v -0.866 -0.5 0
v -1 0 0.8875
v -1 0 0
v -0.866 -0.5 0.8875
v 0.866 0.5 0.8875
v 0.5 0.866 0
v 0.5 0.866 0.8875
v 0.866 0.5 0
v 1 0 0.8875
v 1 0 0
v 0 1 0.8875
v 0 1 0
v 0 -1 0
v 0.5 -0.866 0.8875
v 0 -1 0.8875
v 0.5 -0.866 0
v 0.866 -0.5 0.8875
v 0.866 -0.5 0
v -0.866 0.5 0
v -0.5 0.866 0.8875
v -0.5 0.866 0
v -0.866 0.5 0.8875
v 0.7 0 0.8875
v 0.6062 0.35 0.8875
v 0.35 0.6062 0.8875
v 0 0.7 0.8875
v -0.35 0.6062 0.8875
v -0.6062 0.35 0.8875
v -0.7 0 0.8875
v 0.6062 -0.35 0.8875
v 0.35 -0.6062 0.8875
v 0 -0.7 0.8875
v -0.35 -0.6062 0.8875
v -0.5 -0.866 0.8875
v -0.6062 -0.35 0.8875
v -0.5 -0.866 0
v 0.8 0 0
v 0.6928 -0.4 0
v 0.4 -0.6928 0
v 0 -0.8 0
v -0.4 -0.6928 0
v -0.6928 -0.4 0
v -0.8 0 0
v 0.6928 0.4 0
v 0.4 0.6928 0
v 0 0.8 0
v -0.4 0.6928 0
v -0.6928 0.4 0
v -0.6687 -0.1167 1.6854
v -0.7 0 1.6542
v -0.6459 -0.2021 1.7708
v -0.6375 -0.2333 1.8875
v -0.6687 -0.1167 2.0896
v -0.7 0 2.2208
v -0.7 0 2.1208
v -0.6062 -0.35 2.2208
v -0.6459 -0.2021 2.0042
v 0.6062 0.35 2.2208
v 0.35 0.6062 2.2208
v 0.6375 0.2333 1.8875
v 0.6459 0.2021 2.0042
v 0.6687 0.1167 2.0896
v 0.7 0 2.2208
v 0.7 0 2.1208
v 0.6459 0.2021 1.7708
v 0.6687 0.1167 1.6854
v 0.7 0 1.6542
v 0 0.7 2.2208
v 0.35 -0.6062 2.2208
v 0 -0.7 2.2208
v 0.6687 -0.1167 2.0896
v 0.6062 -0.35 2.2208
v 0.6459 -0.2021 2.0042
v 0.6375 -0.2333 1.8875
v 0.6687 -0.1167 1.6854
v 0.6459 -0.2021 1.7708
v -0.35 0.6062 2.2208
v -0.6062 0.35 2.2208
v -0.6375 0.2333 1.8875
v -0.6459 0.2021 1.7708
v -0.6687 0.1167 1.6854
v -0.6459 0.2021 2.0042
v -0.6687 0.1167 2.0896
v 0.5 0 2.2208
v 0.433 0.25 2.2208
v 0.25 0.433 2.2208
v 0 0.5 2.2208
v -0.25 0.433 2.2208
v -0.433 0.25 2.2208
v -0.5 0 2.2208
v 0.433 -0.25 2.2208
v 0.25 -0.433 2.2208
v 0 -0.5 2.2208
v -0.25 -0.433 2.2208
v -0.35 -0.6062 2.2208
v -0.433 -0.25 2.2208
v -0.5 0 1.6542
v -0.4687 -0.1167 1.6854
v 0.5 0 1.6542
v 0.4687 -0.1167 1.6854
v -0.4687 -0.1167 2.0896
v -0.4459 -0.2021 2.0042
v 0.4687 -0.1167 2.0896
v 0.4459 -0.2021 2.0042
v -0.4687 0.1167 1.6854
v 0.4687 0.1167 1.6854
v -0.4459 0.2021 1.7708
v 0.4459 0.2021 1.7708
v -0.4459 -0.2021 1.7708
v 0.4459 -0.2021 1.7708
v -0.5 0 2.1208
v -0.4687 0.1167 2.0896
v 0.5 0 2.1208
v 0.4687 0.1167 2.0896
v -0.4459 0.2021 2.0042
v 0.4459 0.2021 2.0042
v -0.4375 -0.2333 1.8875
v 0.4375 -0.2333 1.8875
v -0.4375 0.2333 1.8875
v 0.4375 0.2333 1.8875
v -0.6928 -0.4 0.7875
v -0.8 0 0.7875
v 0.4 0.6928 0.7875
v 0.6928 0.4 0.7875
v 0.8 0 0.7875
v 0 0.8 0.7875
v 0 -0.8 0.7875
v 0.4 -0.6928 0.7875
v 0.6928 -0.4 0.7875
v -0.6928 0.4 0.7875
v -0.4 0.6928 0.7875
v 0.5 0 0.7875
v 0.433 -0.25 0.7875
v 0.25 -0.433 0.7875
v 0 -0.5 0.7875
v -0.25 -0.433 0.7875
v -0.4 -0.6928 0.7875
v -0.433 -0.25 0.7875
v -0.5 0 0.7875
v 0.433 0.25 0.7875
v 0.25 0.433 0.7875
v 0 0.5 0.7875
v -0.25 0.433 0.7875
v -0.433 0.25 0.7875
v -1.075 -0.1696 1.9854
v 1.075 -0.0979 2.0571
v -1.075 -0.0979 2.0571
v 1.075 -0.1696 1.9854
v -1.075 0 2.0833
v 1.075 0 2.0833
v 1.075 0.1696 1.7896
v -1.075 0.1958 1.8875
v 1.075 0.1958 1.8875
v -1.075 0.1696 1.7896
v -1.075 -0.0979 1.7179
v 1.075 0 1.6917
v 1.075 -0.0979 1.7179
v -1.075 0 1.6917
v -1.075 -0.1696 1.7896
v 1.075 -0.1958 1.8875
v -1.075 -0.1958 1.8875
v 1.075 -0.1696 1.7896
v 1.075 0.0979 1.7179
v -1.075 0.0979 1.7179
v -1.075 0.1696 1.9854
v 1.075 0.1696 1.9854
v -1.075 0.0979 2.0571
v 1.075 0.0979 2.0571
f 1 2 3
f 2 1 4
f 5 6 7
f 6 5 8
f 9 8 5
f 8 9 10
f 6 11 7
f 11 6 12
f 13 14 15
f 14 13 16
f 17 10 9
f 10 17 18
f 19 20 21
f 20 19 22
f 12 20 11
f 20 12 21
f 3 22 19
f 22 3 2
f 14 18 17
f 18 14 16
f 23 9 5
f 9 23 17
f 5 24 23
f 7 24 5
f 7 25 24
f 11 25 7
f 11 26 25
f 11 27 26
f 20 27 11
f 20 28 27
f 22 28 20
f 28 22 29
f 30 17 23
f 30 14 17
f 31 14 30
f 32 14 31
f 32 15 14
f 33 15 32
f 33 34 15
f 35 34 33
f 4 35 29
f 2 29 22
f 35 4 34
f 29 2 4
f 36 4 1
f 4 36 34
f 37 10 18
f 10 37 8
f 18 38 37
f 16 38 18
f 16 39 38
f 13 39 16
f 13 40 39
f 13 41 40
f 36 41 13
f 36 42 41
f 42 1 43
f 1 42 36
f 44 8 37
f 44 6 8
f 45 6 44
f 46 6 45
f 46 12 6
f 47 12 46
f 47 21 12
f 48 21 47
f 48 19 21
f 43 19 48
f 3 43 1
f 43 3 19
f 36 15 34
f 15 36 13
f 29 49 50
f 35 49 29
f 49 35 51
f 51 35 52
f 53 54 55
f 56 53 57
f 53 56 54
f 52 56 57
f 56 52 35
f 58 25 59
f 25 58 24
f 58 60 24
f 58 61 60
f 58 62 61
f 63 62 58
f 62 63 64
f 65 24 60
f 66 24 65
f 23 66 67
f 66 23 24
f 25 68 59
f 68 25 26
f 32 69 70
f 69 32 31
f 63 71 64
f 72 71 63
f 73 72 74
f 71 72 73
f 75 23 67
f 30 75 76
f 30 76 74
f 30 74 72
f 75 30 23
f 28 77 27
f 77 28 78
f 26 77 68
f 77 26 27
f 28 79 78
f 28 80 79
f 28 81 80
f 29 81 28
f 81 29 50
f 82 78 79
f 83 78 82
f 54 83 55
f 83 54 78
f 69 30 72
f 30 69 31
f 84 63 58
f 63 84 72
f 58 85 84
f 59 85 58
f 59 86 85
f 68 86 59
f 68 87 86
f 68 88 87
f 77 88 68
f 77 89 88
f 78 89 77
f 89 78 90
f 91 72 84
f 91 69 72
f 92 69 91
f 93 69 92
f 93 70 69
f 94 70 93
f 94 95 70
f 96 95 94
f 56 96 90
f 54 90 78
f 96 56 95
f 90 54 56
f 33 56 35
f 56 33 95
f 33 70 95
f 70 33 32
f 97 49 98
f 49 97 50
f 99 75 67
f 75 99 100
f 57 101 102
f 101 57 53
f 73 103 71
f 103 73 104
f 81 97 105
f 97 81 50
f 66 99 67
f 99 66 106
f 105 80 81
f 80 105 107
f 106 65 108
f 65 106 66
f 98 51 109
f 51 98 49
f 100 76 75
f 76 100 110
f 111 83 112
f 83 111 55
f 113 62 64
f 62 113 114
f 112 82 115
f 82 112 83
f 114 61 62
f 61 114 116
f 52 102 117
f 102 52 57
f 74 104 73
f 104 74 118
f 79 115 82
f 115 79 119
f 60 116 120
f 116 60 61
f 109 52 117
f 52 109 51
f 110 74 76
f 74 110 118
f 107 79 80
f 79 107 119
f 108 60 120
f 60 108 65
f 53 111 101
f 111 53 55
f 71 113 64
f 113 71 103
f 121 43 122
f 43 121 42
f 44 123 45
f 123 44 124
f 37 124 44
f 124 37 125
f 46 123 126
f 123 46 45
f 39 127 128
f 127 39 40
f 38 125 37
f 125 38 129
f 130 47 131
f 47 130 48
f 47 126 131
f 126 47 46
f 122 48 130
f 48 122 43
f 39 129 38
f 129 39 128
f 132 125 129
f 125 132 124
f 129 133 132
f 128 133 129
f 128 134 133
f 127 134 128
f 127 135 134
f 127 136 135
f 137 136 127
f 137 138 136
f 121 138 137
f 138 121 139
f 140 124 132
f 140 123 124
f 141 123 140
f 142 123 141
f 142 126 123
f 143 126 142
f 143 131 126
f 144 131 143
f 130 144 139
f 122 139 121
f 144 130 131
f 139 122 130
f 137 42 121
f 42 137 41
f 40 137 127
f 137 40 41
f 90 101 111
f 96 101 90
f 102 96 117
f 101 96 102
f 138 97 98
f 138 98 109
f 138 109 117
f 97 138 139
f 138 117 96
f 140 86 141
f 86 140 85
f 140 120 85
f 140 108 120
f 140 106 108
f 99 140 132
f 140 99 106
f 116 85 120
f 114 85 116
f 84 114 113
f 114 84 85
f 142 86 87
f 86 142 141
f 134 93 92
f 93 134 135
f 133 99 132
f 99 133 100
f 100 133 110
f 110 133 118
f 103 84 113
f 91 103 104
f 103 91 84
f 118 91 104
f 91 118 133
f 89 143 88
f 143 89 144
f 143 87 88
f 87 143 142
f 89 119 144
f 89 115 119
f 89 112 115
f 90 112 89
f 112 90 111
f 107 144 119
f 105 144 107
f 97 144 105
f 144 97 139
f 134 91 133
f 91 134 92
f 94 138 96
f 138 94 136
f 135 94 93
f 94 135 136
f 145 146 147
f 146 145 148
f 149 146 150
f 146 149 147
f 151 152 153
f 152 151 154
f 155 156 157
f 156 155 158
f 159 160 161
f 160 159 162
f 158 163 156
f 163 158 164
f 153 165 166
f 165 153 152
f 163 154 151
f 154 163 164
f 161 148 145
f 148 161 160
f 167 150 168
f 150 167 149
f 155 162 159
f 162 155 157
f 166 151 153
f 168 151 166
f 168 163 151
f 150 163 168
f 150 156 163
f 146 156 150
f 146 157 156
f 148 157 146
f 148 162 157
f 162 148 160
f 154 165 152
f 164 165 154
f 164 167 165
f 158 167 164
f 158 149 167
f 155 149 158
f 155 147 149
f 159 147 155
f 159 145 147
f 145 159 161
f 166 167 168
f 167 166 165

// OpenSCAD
tolerance=0.075;
hole_radius=0.075;
grid_hole_radius=0.075;
outer_radius=1;
thickness=0.2;
hole_attach_height=0.075;
attach_thickness=0.1;
bottom_rotation_height=1.8875;
top_rotation_height=1.525;
next_hole_radius=0.075;
next_hole_attach_height=0.075;
next_inner=0.8;
max_turn=90.0;
min_turn=90.0;
hole_twist=45.0;

//parameters that don't have to be defined explicitly
eps = tolerance/100;
inner_radius = outer_radius - thickness;
axle_offset = attach_thickness;
bottom_joint_attach_radius = outer_radius - hole_attach_height - grid_hole_radius*2 - tolerance;
fn = 12;
fnh = 6;

//solve for b = axle height
max_turn_b = outer_radius / tan((180 - max_turn)/2);
min_turn_b = outer_radius / tan((180 - min_turn)/2);
axle_radius = bottom_joint_attach_radius/3;

grid_hole_height = hole_radius*2 + hole_attach_height * 2;
bottom_joint_grid_clearance = bottom_rotation_height - (hole_attach_height*2 + hole_radius*2 + grid_hole_height + max_turn_b + attach_thickness);

module angled_cylinder(angle_deg_y, _h, _r, angle_deg_x = 0) {
    rotate([angle_deg_x, angle_deg_y, 0]) { // Rotate the cylinder 
            cylinder(h = _h, r = _r, center = true, $fn = fnh);
        }
}

module hole(_h) {
    cylinder(h = _h, r = grid_hole_radius, $fn = fnh);
}

//makes circle of holes
module circular_grid(_h, _r, _n) {
    for (i = [0:_n-1]) {
        angle = i * 360 / _n;
        x_pos = _r * cos(angle);
        y_pos = _r * sin(angle);
        translate([x_pos, y_pos, -eps]) {
            hole(_h);
        }
    }
}

//makes grid of holes
module hole_grid(hole_height, grid_h) {
    translate([0,0,hole_height]) {
        difference() {
            //cylinder
            cylinder(h = grid_h, r = (inner_radius + outer_radius)/2, 
                center=false, $fn = fn);
            //holes
            for (i = [0 : grid_hole_radius * 2 + hole_attach_height : inner_radius - grid_hole_radius * 2]) {
                circular_grid(grid_h + eps*2, i, ceil(6.28*i/(grid_hole_radius*4)));
            }
            
        } 
    }
}

module joint_bottom() {
    //make grid of holes
    grid_hole_height = hole_radius*2 + hole_attach_height * 2;
    //hole_grid(grid_hole_height, grid_hole_radius);
    
    bottom_joint_attach_height = max_turn_b + axle_radius + axle_offset;
   
    operating_height = hole_attach_height*2 + attach_thickness + hole_radius*2 + grid_hole_height + bottom_joint_grid_clearance;
    difference() {
        //bottom joint
        union() {
            cylinder(h=operating_height, r=outer_radius, $fn = fn);
            
            translate([0,0,operating_height]) {
                cylinder(h=bottom_joint_attach_height,r=bottom_joint_attach_radius,$fn=fn);
                //enforce min turn
                difference() {
                    cylinder(h=max_turn_b - min_turn_b,r=outer_radius,$fn=fn);
                    translate([-outer_radius,-outer_radius*2,-eps/2])
                    cube([outer_radius*2 + eps,outer_radius*2 + axle_radius + axle_offset + tolerance + eps,max_turn_b - min_turn_b + eps]);
                    
                    translate([-outer_radius,0,max_turn_b])
                    rotate([-(90+min_turn),0,0])
                    translate([0,-max_turn_b + eps/2,-axle_radius-axle_offset])
                    cube([outer_radius*2,max_turn_b - min_turn_b + eps,outer_radius*2+ axle_radius + axle_offset], center=false);
                }
                
                
            }
        }
        
        //hole for axle
        translate([0,0,operating_height + max_turn_b])
        rotate([0,90,0])
        cylinder(h=outer_radius*2,r=axle_radius,center=true,$fn=fn);
        
        //shelling
        cylinder(h=operating_height - attach_thickness, r=inner_radius, center = false, $fn = fn);
        
        cylinder(h=operating_height + bottom_joint_attach_height + eps, r =          bottom_joint_attach_radius - thickness, center = false, $fn = fn);
        //shell tolerance
        cylinder(h=eps, r=inner_radius, center=true,$fn = fn);
        
        //screw holes
//        translate([0,0,hole_radius + hole_attach_height]) 
//        rotate([0,0,hole_twist]) {
//            angled_cylinder(0, (outer_radius*1.5 + eps) * 2,  hole_radius, 90);
//            angled_cylinder(90, (outer_radius*1.5 + eps) * 2, hole_radius, 0);
//        } 
        
        //holes for routing strings
//        translate([0,-inner_radius + thickness,-hole_attach_height - grid_hole_radius + operating_height])
//        rotate([90,0,0])
//        cylinder(h=thickness + inner_radius + eps, r=grid_hole_radius,$fn=fn);
//        
//        translate([0,outer_radius,-hole_attach_height - grid_hole_radius + operating_height + max_turn_b - min_turn_b])
//        rotate([90,0,0])
//        cylinder(h=thickness + inner_radius + eps, r=grid_hole_radius,$fn=fn);
//        
//        translate([0,bottom_joint_attach_radius + hole_attach_height + grid_hole_radius,operating_height - attach_thickness - eps/2])
//        cylinder(h=attach_thickness + max_turn_b - min_turn_b - hole_attach_height + eps, r=grid_hole_radius,$fn=fn);
    }
}

module axle() {
    cylinder(h=outer_radius*2 + tolerance*2, r = axle_radius - tolerance/2, $fn = fn);
}

joint_bottom();

rotate([0,90,0])
translate([-bottom_rotation_height,0,-outer_radius - tolerance])
axle();
